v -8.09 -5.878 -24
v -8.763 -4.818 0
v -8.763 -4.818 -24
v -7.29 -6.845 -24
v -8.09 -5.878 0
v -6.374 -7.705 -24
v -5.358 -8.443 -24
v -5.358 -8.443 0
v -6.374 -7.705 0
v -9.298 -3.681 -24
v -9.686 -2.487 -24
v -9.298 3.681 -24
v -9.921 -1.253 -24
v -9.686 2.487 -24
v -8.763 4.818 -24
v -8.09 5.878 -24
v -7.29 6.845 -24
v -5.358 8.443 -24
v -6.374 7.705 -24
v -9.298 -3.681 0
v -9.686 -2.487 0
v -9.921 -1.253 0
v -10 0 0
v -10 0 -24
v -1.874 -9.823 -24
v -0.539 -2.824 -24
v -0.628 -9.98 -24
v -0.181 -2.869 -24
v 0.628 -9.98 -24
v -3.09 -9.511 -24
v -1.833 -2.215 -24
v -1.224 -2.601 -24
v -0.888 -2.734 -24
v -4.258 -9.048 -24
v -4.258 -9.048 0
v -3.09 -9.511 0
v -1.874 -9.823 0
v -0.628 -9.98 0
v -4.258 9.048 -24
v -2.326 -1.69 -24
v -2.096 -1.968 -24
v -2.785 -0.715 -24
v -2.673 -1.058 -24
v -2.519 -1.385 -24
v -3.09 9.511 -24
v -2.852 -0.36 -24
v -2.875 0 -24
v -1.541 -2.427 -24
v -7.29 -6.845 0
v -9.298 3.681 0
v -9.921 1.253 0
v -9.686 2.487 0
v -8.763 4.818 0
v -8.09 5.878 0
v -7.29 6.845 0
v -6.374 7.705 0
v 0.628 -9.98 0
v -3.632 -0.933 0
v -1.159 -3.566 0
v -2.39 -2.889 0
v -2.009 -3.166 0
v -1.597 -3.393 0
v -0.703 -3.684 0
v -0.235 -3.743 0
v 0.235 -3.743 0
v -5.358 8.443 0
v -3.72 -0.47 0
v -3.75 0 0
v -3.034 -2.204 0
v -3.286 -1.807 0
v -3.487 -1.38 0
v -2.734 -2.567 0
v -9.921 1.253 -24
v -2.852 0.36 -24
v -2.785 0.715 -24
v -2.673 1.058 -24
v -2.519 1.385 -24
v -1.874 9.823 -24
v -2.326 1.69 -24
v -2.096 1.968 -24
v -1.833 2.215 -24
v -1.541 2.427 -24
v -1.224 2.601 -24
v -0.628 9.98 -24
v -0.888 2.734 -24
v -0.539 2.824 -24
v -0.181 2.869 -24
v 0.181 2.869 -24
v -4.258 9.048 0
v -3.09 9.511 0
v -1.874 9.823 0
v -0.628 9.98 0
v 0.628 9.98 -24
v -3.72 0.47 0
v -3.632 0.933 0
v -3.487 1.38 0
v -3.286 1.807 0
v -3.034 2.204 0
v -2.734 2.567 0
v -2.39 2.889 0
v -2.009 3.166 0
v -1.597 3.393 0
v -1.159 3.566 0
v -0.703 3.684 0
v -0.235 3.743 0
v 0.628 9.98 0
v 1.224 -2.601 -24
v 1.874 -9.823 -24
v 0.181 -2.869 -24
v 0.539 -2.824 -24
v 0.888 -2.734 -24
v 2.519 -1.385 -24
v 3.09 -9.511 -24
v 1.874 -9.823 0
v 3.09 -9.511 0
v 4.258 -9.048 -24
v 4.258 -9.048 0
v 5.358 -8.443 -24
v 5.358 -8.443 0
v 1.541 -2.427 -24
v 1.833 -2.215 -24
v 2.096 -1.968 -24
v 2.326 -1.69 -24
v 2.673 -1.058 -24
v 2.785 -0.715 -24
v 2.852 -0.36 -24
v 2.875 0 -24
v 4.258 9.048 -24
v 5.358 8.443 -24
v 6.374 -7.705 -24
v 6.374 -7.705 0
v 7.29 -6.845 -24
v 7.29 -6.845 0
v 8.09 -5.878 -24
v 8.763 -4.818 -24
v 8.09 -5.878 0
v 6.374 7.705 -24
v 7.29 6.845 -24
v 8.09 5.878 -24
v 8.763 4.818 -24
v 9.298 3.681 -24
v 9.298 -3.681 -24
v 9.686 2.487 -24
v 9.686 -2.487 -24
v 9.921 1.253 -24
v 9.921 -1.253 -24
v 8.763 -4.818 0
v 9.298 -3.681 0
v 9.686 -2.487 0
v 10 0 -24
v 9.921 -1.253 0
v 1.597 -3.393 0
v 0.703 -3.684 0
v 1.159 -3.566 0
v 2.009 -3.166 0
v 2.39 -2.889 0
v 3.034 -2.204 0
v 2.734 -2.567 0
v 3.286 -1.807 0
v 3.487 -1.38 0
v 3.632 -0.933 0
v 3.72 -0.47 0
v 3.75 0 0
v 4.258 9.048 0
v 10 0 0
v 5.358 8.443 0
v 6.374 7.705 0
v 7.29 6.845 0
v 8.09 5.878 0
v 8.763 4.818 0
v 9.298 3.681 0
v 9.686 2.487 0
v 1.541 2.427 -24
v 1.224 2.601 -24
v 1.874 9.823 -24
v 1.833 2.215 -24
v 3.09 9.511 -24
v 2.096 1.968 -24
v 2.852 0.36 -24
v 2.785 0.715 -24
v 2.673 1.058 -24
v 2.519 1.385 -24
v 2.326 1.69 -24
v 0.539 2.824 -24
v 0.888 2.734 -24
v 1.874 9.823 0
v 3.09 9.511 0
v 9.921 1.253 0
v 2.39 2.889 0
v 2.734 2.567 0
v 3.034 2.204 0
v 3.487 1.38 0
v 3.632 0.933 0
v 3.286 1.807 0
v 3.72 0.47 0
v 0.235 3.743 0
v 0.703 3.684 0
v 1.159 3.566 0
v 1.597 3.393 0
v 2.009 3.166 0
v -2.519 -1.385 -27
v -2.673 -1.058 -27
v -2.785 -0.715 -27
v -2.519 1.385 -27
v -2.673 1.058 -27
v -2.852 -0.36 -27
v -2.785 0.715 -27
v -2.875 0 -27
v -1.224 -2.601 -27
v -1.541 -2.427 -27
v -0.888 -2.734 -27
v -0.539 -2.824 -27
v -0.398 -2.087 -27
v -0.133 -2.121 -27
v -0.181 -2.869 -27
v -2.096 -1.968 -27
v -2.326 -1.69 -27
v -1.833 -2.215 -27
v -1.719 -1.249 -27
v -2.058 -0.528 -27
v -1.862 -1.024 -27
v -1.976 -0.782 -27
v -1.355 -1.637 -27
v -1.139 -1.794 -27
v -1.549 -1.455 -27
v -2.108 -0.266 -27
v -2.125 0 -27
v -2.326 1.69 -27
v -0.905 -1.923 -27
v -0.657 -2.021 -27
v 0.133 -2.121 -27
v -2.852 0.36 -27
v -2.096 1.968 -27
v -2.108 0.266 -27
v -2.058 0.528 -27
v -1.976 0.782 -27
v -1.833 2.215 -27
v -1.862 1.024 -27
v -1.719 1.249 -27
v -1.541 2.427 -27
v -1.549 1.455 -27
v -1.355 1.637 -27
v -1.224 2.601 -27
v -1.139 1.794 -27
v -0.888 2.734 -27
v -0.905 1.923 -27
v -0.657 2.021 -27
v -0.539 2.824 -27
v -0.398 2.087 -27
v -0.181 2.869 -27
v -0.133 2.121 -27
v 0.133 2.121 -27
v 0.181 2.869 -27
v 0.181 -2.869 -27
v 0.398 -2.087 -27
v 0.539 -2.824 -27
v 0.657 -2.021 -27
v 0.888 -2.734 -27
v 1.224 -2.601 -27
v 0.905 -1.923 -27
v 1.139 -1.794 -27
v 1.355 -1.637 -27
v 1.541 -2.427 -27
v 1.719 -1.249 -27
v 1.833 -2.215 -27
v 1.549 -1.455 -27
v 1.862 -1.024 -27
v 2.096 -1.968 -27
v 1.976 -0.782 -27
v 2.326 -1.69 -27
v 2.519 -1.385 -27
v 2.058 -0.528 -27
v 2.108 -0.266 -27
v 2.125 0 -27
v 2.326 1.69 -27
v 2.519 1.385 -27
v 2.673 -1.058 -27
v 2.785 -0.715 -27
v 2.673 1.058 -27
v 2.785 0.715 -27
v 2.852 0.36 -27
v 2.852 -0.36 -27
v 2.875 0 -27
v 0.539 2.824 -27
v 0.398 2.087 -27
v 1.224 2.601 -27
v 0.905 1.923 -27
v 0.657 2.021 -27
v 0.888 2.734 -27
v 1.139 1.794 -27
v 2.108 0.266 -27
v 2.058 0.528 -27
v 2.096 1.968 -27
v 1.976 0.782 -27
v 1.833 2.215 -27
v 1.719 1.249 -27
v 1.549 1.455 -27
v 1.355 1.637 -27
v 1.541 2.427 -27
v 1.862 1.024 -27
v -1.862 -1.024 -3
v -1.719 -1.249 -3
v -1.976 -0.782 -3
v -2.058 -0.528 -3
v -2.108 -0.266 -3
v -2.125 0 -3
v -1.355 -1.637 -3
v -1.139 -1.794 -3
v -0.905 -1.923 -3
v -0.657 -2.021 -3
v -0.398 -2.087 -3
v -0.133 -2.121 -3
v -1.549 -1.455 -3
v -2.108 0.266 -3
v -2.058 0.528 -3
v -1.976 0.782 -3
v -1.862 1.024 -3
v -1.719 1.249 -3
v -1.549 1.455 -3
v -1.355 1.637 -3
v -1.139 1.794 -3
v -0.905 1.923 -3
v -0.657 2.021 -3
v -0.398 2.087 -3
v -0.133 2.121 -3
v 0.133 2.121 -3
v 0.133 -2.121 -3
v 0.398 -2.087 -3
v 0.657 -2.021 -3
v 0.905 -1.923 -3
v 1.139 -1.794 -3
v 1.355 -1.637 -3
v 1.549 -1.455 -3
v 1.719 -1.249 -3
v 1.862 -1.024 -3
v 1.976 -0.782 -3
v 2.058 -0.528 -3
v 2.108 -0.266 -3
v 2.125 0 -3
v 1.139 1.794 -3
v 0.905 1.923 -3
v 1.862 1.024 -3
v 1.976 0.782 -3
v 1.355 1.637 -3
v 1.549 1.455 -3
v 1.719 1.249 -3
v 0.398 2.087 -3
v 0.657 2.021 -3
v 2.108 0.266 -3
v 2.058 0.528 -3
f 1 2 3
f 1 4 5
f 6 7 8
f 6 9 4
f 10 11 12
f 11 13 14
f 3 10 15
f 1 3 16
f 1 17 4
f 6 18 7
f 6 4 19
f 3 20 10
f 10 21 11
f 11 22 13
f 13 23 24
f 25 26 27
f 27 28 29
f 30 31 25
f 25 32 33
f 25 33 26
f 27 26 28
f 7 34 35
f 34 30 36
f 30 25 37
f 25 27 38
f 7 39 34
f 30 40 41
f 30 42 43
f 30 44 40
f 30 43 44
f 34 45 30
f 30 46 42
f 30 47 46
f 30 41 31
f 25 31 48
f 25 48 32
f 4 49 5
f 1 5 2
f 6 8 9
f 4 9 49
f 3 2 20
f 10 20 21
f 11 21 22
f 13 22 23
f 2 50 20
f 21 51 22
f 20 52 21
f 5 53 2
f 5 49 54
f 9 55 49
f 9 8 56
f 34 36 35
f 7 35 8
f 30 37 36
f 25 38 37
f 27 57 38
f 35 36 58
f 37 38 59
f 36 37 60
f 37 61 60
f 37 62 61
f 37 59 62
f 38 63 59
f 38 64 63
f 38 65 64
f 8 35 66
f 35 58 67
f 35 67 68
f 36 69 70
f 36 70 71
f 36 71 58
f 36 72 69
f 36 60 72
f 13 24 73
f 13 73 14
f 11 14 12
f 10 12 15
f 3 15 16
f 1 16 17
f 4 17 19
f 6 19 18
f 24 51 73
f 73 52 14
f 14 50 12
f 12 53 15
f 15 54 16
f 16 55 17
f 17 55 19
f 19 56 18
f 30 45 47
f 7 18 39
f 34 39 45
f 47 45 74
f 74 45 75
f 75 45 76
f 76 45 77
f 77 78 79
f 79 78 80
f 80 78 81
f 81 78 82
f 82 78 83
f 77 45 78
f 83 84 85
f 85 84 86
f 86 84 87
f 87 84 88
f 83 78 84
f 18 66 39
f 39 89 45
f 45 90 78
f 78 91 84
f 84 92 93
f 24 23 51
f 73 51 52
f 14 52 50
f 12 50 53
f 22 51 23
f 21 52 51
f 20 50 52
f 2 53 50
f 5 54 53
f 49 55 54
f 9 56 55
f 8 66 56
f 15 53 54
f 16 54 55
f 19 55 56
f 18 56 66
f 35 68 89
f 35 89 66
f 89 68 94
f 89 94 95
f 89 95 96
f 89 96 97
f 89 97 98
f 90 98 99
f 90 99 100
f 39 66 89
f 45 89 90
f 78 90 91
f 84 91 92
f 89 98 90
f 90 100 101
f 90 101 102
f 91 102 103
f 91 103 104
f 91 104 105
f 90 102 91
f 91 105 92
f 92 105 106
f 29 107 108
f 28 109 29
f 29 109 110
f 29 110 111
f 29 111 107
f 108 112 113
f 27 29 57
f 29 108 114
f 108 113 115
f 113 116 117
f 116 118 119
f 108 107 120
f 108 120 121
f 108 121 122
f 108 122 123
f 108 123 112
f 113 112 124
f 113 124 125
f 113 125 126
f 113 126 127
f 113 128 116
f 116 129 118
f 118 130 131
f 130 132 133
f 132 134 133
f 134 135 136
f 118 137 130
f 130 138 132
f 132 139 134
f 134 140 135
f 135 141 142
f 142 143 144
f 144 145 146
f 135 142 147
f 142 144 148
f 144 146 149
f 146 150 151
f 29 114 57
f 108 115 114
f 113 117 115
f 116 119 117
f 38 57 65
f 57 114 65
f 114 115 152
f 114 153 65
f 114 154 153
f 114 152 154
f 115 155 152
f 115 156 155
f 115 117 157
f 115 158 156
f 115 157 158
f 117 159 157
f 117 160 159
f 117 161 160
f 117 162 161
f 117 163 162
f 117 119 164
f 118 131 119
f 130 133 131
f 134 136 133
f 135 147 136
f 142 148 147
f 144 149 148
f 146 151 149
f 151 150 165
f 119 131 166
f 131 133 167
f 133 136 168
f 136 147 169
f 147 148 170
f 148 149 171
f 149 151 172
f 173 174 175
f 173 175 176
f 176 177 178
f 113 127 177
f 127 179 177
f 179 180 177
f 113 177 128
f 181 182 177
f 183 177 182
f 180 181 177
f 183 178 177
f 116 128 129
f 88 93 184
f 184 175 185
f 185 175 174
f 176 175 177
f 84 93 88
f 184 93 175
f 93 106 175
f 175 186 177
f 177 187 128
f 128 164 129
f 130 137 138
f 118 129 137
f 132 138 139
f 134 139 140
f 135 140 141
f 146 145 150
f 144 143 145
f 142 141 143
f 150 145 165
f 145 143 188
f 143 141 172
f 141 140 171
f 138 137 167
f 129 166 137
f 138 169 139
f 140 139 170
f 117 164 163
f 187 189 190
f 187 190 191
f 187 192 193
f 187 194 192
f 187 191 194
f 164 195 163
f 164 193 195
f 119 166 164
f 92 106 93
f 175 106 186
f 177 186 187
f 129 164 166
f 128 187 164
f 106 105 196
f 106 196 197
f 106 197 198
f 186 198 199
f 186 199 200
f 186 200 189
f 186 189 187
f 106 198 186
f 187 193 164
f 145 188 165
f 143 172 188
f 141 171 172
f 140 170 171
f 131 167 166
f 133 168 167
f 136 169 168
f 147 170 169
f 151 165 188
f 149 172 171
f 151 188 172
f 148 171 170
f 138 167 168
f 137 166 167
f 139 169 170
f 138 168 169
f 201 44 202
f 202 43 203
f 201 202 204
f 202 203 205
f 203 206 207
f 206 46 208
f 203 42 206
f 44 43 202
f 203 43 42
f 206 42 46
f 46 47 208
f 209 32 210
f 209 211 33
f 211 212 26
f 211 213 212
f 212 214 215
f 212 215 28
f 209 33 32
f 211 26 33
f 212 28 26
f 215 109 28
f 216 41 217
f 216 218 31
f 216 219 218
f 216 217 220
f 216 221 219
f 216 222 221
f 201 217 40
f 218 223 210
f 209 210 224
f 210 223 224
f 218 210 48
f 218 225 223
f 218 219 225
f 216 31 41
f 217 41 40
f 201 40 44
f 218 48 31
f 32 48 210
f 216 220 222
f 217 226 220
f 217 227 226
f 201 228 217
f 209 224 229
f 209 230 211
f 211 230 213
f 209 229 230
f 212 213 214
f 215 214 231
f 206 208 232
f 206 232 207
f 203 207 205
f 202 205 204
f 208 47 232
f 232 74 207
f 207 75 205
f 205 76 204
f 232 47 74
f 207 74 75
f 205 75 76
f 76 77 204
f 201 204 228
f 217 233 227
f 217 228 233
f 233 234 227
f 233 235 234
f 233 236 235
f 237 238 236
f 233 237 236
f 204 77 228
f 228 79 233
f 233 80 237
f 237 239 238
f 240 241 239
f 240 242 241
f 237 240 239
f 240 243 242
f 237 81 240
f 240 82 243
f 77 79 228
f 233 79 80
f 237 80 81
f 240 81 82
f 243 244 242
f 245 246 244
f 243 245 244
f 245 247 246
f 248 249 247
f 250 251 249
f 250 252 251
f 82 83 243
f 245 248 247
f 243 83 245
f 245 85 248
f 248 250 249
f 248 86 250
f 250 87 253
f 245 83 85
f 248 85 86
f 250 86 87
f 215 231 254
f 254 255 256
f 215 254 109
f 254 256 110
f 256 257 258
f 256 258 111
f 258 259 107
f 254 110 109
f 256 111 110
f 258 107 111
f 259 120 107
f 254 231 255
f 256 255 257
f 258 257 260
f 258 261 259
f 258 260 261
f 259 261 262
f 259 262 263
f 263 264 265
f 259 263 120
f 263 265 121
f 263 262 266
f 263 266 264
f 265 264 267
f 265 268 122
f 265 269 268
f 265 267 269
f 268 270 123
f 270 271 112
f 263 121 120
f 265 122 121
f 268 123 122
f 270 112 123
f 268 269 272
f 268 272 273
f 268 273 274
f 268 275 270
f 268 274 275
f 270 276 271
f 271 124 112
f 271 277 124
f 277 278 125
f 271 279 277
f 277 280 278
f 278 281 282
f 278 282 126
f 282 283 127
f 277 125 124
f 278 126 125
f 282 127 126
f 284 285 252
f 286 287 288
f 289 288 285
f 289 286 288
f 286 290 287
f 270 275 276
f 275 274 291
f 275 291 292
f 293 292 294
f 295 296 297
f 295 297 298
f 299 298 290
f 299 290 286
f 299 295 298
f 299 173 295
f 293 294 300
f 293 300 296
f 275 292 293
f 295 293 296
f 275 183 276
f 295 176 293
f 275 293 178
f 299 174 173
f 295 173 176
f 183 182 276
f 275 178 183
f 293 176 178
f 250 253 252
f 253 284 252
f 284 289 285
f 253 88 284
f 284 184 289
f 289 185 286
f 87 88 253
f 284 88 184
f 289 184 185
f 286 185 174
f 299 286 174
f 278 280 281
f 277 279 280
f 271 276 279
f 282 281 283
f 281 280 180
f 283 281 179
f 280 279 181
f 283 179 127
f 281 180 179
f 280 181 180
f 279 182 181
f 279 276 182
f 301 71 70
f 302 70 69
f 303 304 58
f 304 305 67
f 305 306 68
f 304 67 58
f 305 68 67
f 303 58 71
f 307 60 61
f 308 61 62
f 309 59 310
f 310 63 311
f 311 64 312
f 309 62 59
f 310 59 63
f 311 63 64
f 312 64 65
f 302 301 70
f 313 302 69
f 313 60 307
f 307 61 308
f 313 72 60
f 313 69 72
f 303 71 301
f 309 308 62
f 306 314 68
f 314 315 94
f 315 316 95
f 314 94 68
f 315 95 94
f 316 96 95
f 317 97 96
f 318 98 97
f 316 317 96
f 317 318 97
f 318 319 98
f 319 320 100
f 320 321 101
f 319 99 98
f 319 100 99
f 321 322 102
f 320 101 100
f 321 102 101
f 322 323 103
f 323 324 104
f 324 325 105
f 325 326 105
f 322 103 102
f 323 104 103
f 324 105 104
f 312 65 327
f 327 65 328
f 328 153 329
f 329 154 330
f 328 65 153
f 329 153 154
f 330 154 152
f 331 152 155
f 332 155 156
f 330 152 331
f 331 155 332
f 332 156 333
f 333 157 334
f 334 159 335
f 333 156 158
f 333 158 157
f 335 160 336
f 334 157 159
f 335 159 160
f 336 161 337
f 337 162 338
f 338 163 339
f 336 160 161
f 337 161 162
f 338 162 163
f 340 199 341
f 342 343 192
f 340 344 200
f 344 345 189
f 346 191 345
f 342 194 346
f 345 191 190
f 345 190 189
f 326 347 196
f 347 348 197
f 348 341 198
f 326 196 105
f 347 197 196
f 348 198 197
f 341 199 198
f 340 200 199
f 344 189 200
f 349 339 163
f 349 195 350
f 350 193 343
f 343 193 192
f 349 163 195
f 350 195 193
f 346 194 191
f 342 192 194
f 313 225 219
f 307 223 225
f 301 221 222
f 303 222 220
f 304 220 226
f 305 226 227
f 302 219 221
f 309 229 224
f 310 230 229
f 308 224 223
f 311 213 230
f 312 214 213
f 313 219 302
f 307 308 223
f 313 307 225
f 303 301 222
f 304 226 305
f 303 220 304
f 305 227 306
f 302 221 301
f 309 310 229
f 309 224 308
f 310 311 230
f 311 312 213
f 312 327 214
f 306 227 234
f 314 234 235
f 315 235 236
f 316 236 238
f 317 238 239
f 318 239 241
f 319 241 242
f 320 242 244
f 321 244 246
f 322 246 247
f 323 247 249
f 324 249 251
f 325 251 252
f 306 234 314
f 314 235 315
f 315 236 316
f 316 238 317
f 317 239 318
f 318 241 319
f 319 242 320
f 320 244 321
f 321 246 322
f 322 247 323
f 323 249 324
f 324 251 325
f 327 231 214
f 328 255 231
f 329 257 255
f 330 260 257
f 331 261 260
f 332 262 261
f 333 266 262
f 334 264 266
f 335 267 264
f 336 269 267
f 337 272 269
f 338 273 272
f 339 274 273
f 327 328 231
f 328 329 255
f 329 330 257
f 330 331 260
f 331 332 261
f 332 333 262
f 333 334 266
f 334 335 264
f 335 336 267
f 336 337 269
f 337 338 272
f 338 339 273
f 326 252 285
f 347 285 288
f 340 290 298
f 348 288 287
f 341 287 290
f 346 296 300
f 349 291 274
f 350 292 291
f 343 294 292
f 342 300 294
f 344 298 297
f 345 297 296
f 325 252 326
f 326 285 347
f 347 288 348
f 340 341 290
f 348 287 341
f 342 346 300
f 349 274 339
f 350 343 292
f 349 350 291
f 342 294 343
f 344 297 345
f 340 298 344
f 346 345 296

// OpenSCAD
$fn = 50;

difference() {
	union() {
		translate(v = [0, 0, -24.0]) {
			cylinder(h = 24, r = 10.0);
		}
		#translate(v = [0, 0, -27.0]) {
			cylinder(h = 27, r = 2.875);
		}
	}
	union() {
		translate(v = [0, 0, 0]) {
			rotate(a = [0, 0, 0]) {
				difference() {
					union() {
						translate(v = [0, 0, -27.0]) {
							cylinder(h = 27, r = 2.0);
						}
						translate(v = [0, 0, -3]) {
							cylinder(h = 3, r1 = 2.125, r2 = 3.75);
						}
						translate(v = [0, 0, -27.0]) {
							cylinder(h = 27, r = 2.125);
						}
						translate(v = [0, 0, -27.0]) {
							cylinder(h = 27, r = 2.0);
						}
					}
					union();
				}
			}
		}
	}
}
